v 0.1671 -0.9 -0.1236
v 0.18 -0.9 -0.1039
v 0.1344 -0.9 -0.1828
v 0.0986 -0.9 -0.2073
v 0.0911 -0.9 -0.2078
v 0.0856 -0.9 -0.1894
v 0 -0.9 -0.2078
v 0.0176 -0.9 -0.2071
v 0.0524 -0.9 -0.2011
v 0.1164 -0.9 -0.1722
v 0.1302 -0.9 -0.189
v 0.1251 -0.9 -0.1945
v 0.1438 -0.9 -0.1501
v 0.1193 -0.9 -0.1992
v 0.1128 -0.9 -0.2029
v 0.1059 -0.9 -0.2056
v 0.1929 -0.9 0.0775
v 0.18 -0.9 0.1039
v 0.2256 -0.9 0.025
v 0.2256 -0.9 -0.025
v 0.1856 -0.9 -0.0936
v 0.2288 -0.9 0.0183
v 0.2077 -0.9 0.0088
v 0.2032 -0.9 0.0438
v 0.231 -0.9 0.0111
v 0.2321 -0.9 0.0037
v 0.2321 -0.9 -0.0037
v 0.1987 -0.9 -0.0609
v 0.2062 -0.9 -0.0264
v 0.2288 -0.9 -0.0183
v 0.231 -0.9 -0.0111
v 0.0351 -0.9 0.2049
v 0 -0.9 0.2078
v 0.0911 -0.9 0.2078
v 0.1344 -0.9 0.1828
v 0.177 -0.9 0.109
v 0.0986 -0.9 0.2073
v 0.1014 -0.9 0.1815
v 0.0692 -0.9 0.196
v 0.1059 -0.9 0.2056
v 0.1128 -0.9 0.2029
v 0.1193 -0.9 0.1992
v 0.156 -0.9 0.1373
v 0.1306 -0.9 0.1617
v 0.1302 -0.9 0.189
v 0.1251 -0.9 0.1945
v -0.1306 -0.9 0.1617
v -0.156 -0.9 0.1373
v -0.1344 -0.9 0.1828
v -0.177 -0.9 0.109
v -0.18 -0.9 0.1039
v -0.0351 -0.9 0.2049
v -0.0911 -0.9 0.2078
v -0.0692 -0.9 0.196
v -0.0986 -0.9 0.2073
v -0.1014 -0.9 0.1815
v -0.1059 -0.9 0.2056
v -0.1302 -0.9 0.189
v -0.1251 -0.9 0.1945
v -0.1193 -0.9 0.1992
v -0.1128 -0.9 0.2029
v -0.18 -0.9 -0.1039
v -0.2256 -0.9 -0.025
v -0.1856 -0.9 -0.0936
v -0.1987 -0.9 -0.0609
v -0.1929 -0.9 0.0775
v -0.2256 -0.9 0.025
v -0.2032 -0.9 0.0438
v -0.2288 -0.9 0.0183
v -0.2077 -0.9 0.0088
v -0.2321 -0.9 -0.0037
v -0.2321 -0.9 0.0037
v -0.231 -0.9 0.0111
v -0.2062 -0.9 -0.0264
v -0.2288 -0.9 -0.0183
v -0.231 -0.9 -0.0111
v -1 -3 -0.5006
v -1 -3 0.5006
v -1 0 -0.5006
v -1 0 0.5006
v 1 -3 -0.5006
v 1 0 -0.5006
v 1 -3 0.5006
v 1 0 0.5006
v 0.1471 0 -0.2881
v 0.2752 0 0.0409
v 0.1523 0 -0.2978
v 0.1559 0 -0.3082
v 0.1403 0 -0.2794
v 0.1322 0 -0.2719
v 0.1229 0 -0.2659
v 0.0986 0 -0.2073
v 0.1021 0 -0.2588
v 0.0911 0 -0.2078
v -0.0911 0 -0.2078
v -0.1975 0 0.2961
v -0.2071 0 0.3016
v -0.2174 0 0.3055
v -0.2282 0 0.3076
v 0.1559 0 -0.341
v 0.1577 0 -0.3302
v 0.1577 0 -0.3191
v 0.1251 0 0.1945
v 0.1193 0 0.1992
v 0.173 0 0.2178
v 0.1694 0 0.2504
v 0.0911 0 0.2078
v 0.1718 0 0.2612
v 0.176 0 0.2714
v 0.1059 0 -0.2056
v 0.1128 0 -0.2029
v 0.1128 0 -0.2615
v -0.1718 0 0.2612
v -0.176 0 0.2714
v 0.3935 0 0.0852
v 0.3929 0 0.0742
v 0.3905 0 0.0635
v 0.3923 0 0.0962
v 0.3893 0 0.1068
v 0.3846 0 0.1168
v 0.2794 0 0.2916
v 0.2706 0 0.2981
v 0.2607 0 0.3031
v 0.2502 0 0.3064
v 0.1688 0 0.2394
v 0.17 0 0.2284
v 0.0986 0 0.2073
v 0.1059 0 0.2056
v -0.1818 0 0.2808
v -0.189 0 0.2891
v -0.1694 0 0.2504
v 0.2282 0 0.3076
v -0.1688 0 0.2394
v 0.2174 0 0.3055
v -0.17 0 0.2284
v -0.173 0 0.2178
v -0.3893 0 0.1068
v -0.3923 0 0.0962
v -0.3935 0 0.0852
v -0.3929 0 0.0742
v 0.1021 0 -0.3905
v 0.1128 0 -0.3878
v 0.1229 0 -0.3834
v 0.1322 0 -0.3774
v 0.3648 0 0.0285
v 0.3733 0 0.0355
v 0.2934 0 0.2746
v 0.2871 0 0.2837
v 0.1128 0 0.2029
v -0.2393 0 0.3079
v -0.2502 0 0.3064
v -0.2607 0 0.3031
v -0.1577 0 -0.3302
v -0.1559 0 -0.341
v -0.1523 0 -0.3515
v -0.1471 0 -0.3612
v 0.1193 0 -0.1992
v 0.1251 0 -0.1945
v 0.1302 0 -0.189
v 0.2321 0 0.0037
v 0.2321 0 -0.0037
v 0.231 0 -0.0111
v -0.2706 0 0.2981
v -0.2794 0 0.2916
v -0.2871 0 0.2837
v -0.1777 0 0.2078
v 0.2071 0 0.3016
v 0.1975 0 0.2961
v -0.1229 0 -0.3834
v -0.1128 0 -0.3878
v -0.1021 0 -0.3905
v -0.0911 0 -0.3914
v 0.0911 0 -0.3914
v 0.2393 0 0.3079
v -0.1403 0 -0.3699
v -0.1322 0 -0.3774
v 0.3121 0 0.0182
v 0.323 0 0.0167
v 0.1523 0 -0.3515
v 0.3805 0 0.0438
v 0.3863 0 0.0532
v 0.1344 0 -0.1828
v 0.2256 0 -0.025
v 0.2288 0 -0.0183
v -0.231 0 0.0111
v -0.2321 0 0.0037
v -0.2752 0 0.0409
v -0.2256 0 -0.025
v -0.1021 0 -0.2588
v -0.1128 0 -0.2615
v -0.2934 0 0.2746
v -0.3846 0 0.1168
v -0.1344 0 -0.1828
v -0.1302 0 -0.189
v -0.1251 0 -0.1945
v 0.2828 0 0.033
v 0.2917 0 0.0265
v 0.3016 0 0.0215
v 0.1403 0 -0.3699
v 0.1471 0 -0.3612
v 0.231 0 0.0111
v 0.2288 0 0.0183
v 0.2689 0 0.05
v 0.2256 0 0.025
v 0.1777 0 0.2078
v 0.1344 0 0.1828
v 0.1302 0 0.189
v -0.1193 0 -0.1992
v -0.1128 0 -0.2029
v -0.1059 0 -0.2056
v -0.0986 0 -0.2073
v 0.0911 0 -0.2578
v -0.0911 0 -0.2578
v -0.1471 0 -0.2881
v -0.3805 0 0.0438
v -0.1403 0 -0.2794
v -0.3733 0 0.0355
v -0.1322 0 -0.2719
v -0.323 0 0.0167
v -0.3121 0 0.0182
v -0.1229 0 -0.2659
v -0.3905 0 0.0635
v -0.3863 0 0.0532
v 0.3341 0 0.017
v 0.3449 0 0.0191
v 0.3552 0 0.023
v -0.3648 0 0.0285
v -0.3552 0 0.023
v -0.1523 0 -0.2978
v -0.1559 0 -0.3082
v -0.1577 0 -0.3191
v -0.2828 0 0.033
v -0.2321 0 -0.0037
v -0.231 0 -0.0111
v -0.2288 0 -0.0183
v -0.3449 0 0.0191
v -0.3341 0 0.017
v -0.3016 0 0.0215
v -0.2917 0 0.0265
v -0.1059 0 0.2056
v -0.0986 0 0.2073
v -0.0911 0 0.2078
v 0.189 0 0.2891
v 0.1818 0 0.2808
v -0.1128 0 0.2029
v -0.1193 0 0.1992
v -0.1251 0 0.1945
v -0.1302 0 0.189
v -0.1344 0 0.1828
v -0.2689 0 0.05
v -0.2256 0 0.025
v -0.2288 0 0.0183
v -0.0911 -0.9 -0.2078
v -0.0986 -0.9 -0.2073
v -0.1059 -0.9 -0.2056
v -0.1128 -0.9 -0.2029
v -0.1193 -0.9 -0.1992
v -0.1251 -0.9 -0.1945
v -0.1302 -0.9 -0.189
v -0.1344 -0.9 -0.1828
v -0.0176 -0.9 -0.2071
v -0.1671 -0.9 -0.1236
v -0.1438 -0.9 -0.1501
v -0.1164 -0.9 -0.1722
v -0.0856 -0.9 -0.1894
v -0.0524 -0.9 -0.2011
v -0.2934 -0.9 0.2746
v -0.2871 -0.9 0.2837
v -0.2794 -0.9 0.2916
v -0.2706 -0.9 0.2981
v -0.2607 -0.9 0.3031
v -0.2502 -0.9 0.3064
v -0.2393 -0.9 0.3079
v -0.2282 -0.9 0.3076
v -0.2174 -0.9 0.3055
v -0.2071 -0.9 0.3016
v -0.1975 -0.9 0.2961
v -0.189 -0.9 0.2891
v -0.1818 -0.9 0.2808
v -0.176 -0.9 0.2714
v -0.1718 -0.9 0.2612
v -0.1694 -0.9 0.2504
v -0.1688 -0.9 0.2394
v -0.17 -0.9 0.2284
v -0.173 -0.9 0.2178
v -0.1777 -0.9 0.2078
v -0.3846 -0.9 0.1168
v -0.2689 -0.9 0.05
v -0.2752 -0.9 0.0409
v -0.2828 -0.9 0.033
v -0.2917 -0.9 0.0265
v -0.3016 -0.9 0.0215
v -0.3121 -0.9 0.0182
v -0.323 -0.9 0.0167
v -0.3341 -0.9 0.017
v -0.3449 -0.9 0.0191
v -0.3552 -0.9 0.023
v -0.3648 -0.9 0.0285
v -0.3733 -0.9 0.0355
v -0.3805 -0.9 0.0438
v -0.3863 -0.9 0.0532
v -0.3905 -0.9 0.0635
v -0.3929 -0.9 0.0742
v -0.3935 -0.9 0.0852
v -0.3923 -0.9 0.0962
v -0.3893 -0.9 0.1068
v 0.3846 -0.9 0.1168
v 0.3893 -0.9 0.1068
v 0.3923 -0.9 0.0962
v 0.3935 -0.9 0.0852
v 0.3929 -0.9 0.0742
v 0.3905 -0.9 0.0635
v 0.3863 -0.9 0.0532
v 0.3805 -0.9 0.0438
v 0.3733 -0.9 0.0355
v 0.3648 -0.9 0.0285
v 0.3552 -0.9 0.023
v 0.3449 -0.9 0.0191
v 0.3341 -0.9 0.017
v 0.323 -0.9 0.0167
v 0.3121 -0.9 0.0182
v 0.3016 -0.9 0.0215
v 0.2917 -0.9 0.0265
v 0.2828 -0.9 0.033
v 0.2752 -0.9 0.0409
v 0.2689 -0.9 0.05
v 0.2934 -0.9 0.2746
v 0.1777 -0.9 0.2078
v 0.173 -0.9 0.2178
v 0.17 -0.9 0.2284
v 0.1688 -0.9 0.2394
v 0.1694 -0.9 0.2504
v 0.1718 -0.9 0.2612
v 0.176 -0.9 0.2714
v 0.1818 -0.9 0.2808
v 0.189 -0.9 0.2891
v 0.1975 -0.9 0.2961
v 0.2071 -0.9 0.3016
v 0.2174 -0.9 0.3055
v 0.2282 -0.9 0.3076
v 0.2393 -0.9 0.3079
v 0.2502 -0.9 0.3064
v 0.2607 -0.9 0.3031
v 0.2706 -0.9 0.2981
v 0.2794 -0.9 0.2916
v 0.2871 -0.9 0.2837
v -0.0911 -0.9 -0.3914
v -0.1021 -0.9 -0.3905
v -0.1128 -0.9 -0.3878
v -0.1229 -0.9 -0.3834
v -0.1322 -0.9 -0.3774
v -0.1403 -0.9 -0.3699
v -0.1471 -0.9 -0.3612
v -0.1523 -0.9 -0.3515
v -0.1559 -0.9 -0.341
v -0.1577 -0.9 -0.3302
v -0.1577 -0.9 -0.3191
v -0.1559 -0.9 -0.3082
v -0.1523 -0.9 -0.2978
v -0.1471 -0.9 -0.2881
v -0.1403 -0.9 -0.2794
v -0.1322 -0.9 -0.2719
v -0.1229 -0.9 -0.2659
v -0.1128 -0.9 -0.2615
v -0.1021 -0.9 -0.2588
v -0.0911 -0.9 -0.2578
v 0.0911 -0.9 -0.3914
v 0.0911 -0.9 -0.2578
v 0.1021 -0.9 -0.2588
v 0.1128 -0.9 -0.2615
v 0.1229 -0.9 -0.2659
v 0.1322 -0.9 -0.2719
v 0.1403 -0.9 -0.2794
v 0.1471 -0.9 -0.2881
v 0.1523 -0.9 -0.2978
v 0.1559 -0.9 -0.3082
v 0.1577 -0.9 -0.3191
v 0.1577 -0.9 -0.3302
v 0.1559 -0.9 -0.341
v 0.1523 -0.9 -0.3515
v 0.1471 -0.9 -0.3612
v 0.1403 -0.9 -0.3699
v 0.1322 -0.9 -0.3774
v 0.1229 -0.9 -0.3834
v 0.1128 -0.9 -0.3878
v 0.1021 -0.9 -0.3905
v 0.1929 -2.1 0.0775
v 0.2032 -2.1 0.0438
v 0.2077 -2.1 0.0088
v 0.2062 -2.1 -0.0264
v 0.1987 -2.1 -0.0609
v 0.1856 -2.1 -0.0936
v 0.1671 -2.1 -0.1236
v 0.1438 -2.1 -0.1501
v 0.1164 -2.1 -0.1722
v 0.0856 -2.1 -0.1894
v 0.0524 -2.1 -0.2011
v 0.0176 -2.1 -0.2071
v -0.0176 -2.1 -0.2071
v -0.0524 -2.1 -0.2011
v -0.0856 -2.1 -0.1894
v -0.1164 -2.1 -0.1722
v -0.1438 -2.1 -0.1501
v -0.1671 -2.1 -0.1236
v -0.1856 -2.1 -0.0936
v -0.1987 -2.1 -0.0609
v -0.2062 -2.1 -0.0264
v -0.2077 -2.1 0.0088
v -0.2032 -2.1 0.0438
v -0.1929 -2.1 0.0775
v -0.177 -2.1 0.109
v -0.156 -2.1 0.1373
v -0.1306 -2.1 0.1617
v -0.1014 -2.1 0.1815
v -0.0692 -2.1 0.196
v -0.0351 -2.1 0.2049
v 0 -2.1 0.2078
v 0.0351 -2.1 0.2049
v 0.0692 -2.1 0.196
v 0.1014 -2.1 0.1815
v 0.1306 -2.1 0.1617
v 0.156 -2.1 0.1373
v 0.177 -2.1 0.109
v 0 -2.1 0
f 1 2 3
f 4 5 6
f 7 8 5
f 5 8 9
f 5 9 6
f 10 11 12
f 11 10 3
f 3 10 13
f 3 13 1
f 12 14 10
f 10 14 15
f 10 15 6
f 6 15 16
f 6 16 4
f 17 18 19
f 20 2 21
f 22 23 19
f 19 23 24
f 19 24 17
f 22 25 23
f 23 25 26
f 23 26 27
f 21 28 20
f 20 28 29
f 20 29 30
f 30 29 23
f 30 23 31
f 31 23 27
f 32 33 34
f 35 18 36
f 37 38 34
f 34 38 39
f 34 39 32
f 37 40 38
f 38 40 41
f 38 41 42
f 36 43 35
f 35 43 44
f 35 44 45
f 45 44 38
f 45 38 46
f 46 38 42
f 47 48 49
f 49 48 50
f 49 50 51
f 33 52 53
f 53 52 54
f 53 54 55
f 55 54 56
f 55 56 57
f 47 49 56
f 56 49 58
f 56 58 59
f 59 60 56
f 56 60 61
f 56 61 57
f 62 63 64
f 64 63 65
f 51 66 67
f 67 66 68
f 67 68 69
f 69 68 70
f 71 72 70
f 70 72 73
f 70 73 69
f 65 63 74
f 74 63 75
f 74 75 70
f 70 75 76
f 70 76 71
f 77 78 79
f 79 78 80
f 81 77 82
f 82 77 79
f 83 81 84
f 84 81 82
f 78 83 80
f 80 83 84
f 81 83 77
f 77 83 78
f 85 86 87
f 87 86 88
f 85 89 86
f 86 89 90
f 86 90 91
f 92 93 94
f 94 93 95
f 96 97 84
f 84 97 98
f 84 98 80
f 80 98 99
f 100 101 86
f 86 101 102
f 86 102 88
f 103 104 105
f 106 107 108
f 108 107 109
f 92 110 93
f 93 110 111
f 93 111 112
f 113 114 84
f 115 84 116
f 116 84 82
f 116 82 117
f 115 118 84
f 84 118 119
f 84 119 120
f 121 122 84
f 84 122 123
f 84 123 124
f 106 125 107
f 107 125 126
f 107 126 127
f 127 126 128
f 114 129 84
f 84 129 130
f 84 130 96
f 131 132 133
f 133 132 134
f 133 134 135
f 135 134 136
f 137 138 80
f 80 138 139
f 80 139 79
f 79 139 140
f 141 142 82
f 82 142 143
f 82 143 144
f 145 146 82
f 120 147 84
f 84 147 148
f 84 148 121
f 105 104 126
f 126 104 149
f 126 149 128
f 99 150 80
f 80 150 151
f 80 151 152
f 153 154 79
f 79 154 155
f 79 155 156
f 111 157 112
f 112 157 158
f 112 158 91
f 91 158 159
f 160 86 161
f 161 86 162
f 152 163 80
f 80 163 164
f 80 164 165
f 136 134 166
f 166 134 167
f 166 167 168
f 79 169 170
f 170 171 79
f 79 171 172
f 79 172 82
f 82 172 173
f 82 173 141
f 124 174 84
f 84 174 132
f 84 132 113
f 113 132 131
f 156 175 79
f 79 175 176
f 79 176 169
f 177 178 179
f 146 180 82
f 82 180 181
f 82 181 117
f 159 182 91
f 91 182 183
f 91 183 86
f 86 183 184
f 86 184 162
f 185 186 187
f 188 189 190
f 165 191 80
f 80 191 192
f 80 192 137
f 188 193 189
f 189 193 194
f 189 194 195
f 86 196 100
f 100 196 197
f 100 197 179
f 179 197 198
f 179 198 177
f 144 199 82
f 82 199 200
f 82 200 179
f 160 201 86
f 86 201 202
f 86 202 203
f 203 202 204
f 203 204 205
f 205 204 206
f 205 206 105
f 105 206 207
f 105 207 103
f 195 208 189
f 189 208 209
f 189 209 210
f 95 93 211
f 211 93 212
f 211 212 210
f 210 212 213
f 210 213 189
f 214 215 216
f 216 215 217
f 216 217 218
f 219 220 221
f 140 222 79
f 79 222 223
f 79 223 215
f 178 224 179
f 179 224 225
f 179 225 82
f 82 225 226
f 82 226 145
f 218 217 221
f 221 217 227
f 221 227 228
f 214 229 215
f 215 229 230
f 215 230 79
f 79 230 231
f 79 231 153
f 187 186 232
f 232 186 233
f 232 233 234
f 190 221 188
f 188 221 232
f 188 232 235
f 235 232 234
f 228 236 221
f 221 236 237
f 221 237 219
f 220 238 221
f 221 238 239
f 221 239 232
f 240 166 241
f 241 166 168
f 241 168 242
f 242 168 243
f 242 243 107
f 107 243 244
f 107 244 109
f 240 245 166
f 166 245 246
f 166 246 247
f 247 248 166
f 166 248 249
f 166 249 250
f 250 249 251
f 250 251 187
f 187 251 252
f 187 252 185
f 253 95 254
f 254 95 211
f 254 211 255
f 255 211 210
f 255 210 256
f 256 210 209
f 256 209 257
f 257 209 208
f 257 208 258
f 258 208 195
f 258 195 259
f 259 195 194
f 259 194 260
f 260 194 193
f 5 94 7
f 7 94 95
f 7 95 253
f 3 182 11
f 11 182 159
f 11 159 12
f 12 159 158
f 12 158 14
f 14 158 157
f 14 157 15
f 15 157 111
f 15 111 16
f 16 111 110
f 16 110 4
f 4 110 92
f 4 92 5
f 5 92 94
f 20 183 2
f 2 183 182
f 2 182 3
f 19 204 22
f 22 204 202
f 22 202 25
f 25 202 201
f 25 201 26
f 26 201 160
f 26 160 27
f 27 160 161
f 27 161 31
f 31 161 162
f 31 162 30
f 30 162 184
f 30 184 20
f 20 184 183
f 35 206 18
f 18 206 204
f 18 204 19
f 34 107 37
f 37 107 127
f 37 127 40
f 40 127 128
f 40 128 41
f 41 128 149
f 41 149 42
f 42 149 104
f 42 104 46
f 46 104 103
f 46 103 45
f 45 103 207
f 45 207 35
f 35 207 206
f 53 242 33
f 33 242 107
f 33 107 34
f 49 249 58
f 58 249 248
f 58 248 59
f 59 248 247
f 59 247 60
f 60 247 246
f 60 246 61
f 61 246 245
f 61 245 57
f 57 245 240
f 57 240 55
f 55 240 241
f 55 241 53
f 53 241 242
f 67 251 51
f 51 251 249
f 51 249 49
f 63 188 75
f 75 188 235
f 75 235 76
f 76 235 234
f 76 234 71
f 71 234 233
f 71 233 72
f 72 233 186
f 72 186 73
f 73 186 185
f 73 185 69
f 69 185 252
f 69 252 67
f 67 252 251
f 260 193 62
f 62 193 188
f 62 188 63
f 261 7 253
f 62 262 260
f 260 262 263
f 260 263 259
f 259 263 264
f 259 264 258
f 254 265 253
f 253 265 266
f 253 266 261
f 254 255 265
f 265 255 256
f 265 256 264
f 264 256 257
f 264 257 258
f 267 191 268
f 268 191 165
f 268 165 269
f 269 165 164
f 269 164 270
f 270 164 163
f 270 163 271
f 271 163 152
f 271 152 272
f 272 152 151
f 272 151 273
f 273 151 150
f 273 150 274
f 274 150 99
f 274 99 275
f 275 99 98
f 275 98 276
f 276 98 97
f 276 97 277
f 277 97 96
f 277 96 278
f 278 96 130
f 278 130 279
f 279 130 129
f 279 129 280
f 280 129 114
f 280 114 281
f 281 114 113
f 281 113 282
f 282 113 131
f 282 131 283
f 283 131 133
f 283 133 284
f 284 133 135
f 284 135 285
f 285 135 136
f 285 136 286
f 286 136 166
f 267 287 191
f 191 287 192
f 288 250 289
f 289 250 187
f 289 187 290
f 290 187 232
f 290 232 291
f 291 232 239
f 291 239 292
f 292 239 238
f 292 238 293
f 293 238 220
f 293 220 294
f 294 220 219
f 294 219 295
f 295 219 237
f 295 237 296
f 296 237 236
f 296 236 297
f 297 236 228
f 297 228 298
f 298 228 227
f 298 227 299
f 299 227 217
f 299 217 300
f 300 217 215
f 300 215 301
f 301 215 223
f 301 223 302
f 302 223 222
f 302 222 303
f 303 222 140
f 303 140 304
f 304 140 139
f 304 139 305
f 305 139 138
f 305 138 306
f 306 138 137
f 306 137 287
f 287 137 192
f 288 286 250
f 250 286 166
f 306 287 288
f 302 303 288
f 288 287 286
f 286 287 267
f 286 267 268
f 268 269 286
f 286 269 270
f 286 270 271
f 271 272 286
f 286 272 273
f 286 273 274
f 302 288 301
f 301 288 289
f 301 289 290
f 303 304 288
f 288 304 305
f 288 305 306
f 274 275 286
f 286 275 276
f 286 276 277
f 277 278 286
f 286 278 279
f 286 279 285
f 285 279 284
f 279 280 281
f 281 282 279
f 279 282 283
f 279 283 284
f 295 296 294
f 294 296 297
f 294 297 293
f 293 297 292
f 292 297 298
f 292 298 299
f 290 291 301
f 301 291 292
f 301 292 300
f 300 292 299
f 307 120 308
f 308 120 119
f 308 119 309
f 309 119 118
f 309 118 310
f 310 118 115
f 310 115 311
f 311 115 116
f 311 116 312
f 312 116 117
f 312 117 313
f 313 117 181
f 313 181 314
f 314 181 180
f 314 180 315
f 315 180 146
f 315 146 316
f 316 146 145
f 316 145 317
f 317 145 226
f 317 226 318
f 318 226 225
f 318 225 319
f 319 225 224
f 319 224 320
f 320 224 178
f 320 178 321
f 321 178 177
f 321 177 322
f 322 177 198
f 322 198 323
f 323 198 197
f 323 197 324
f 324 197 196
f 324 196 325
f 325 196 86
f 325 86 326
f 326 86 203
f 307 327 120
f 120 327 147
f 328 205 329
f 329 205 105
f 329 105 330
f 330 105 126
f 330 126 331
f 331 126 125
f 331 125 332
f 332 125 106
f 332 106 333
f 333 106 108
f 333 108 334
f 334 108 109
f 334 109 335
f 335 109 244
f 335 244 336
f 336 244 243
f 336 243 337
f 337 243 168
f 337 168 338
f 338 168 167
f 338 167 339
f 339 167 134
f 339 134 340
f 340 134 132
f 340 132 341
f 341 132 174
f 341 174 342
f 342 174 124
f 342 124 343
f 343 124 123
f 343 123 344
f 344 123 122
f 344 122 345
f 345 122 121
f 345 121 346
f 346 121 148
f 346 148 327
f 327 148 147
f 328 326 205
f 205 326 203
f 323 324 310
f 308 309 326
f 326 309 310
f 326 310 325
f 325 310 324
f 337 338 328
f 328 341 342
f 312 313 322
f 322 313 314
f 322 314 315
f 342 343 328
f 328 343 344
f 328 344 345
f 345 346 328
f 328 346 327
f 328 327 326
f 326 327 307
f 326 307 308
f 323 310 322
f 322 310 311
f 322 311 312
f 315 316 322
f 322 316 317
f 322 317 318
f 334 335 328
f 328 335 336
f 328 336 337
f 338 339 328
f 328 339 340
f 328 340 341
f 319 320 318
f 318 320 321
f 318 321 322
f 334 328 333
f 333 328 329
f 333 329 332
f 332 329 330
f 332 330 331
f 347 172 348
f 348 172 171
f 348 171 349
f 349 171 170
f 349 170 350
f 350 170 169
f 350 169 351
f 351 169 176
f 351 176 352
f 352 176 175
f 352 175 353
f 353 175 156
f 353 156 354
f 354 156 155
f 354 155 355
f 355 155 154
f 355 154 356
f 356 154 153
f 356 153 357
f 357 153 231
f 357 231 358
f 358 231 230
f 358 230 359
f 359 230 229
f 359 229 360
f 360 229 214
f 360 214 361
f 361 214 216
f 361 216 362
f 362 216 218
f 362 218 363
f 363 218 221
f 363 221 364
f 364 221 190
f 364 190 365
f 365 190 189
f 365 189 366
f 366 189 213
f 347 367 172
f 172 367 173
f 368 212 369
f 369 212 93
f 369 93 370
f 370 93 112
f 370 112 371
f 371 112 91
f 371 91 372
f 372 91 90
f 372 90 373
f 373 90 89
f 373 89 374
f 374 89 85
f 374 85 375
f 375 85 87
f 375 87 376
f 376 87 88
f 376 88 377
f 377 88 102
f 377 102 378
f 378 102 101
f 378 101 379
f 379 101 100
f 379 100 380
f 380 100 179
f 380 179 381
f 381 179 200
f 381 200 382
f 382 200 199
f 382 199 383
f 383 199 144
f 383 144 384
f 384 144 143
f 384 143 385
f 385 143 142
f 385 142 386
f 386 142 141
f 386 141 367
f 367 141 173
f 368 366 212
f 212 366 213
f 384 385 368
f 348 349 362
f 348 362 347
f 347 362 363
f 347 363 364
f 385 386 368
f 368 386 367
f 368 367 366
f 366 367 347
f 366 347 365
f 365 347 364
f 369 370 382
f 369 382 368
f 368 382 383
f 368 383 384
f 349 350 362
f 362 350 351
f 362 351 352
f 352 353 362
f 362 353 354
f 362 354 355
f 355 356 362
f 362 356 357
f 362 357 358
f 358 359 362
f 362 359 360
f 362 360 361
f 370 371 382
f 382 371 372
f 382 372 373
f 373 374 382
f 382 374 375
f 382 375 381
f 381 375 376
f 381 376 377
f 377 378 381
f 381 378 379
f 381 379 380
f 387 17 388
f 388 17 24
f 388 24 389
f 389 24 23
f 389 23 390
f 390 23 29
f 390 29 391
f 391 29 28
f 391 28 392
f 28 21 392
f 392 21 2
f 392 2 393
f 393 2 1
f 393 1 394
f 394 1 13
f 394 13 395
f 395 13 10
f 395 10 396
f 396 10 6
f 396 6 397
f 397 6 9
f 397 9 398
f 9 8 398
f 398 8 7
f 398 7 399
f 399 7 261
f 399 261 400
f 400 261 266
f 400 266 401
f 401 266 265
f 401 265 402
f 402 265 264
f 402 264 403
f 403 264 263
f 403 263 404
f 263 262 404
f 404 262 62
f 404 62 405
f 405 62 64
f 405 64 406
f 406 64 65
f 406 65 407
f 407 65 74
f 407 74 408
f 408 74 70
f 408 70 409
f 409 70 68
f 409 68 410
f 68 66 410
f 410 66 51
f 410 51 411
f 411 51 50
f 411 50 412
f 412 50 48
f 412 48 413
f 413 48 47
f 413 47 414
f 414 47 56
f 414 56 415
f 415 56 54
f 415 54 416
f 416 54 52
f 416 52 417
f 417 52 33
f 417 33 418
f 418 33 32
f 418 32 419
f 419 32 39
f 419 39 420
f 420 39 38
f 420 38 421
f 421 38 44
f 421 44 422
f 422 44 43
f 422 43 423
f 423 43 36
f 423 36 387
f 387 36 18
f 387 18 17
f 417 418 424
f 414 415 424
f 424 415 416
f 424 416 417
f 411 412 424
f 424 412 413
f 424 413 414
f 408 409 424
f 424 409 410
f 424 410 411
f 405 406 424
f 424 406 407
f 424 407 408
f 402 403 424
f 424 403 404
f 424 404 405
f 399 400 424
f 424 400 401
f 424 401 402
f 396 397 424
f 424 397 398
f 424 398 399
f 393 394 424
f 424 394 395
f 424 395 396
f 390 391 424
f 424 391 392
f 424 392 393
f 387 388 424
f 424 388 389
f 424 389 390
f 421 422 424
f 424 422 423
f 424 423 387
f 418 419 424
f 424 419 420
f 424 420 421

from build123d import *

# Parameters (mm, degrees)
SKETCH6_W           = 2
SKETCH6_H           = 1.001148594
BOSS_EXTRUDE7_DEPTH = 3
CUT_EXTRUDE3_DEPTH  = 0.9
SKETCH5_R           = 0.207846097
CUT_EXTRUDE4_DEPTH  = 2.7


with BuildPart() as part:
    # Sketch6 → Boss-Extrude7 (new body)
    with BuildSketch(Plane.XZ):
        Rectangle(SKETCH6_W, SKETCH6_H)
    extrude(amount=BOSS_EXTRUDE7_DEPTH)

    # Sketch1 → Cut-Extrude3 (cut)
    with BuildSketch(Plane(origin=(0, 0, 0), x_dir=(1, 0, 0), z_dir=(0, 1, 0))):
        with BuildLine():
            Line((-0.091132487, 0.257846097), (0.091132487, 0.257846097))
            ThreePointArc((0.091132487, 0.257846097), (0.157927132, 0.324640742), (0.091132487, 0.391435388))
            Line((0.091132487, 0.391435388), (-0.091132487, 0.391435388))
            ThreePointArc((-0.091132487, 0.391435388), (-0.157927132, 0.324640742), (-0.091132487, 0.257846097))
        make_face()
        with BuildLine():
            Line((-0.134433757, 0.182846097), (-0.225566243, 0.025))
            ThreePointArc((-0.225566243, 0.025), (-0.232264973, 0), (-0.225566243, -0.025))
            Line((-0.225566243, -0.025), (-0.134433757, -0.182846097))
            ThreePointArc((-0.134433757, -0.182846097), (-0.116132487, -0.201147367), (-0.091132487, -0.207846097))
            Line((-0.091132487, -0.207846097), (0.091132487, -0.207846097))
            ThreePointArc((0.091132487, -0.207846097), (0.116132487, -0.201147367), (0.134433757, -0.182846097))
            Line((0.134433757, -0.182846097), (0.225566243, -0.025))
            ThreePointArc((0.225566243, -0.025), (0.232264973, 0), (0.225566243, 0.025))
            Line((0.225566243, 0.025), (0.134433757, 0.182846097))
            ThreePointArc((0.134433757, 0.182846097), (0.116132487, 0.201147367), (0.091132487, 0.207846097))
            Line((0.091132487, 0.207846097), (-0.091132487, 0.207846097))
            ThreePointArc((-0.091132487, 0.207846097), (-0.116132487, 0.201147367), (-0.134433757, 0.182846097))
        make_face()
        with BuildLine():
            Line((0.293426746, -0.274640742), (0.384559233, -0.116794645))
            ThreePointArc((0.384559233, -0.116794645), (0.360110696, -0.025551463), (0.268867513, -0.05))
            Line((0.268867513, -0.05), (0.177735027, -0.207846097))
            ThreePointArc((0.177735027, -0.207846097), (0.202183564, -0.299089279), (0.293426746, -0.274640742))
        make_face()
        with BuildLine():
            Line((-0.384559233, -0.116794645), (-0.293426746, -0.274640742))
            ThreePointArc((-0.293426746, -0.274640742), (-0.202183564, -0.299089279), (-0.177735027, -0.207846097))
            Line((-0.177735027, -0.207846097), (-0.268867513, -0.05))
            ThreePointArc((-0.268867513, -0.05), (-0.360110696, -0.025551463), (-0.384559233, -0.116794645))
        make_face()
    extrude(amount=-CUT_EXTRUDE3_DEPTH, mode=Mode.SUBTRACT)

    # Sketch5 → Cut-Extrude4 (cut)
    with BuildSketch(Plane(origin=(0, 0.6, 0), x_dir=(1, 0, 0), z_dir=(0, 1, 0))):
        with Locations(Location((0, 0, 0), (0, 0, 270))):
            Circle(SKETCH5_R)
    extrude(amount=-CUT_EXTRUDE4_DEPTH, mode=Mode.SUBTRACT)


solid = part.part
